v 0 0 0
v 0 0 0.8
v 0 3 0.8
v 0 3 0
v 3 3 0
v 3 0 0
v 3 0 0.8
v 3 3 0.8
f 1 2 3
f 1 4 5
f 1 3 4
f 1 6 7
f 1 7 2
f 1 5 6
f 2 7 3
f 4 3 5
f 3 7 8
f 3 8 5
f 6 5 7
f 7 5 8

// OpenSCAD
/* Warning, this is a very basic generator with a lot of approximation 
input data : [WQFN, 2PX, 3x3x0.8mm, 12, , A, C04-00302A]
generated by com.zoubworld.electronics.cad.model3d.Basic
Date : Sun Feb 15 10:50:48 CET 2026
*/

//body
color("black")
translate([0,0,0])
cube([3.0,3.0,0.8], center=false);
